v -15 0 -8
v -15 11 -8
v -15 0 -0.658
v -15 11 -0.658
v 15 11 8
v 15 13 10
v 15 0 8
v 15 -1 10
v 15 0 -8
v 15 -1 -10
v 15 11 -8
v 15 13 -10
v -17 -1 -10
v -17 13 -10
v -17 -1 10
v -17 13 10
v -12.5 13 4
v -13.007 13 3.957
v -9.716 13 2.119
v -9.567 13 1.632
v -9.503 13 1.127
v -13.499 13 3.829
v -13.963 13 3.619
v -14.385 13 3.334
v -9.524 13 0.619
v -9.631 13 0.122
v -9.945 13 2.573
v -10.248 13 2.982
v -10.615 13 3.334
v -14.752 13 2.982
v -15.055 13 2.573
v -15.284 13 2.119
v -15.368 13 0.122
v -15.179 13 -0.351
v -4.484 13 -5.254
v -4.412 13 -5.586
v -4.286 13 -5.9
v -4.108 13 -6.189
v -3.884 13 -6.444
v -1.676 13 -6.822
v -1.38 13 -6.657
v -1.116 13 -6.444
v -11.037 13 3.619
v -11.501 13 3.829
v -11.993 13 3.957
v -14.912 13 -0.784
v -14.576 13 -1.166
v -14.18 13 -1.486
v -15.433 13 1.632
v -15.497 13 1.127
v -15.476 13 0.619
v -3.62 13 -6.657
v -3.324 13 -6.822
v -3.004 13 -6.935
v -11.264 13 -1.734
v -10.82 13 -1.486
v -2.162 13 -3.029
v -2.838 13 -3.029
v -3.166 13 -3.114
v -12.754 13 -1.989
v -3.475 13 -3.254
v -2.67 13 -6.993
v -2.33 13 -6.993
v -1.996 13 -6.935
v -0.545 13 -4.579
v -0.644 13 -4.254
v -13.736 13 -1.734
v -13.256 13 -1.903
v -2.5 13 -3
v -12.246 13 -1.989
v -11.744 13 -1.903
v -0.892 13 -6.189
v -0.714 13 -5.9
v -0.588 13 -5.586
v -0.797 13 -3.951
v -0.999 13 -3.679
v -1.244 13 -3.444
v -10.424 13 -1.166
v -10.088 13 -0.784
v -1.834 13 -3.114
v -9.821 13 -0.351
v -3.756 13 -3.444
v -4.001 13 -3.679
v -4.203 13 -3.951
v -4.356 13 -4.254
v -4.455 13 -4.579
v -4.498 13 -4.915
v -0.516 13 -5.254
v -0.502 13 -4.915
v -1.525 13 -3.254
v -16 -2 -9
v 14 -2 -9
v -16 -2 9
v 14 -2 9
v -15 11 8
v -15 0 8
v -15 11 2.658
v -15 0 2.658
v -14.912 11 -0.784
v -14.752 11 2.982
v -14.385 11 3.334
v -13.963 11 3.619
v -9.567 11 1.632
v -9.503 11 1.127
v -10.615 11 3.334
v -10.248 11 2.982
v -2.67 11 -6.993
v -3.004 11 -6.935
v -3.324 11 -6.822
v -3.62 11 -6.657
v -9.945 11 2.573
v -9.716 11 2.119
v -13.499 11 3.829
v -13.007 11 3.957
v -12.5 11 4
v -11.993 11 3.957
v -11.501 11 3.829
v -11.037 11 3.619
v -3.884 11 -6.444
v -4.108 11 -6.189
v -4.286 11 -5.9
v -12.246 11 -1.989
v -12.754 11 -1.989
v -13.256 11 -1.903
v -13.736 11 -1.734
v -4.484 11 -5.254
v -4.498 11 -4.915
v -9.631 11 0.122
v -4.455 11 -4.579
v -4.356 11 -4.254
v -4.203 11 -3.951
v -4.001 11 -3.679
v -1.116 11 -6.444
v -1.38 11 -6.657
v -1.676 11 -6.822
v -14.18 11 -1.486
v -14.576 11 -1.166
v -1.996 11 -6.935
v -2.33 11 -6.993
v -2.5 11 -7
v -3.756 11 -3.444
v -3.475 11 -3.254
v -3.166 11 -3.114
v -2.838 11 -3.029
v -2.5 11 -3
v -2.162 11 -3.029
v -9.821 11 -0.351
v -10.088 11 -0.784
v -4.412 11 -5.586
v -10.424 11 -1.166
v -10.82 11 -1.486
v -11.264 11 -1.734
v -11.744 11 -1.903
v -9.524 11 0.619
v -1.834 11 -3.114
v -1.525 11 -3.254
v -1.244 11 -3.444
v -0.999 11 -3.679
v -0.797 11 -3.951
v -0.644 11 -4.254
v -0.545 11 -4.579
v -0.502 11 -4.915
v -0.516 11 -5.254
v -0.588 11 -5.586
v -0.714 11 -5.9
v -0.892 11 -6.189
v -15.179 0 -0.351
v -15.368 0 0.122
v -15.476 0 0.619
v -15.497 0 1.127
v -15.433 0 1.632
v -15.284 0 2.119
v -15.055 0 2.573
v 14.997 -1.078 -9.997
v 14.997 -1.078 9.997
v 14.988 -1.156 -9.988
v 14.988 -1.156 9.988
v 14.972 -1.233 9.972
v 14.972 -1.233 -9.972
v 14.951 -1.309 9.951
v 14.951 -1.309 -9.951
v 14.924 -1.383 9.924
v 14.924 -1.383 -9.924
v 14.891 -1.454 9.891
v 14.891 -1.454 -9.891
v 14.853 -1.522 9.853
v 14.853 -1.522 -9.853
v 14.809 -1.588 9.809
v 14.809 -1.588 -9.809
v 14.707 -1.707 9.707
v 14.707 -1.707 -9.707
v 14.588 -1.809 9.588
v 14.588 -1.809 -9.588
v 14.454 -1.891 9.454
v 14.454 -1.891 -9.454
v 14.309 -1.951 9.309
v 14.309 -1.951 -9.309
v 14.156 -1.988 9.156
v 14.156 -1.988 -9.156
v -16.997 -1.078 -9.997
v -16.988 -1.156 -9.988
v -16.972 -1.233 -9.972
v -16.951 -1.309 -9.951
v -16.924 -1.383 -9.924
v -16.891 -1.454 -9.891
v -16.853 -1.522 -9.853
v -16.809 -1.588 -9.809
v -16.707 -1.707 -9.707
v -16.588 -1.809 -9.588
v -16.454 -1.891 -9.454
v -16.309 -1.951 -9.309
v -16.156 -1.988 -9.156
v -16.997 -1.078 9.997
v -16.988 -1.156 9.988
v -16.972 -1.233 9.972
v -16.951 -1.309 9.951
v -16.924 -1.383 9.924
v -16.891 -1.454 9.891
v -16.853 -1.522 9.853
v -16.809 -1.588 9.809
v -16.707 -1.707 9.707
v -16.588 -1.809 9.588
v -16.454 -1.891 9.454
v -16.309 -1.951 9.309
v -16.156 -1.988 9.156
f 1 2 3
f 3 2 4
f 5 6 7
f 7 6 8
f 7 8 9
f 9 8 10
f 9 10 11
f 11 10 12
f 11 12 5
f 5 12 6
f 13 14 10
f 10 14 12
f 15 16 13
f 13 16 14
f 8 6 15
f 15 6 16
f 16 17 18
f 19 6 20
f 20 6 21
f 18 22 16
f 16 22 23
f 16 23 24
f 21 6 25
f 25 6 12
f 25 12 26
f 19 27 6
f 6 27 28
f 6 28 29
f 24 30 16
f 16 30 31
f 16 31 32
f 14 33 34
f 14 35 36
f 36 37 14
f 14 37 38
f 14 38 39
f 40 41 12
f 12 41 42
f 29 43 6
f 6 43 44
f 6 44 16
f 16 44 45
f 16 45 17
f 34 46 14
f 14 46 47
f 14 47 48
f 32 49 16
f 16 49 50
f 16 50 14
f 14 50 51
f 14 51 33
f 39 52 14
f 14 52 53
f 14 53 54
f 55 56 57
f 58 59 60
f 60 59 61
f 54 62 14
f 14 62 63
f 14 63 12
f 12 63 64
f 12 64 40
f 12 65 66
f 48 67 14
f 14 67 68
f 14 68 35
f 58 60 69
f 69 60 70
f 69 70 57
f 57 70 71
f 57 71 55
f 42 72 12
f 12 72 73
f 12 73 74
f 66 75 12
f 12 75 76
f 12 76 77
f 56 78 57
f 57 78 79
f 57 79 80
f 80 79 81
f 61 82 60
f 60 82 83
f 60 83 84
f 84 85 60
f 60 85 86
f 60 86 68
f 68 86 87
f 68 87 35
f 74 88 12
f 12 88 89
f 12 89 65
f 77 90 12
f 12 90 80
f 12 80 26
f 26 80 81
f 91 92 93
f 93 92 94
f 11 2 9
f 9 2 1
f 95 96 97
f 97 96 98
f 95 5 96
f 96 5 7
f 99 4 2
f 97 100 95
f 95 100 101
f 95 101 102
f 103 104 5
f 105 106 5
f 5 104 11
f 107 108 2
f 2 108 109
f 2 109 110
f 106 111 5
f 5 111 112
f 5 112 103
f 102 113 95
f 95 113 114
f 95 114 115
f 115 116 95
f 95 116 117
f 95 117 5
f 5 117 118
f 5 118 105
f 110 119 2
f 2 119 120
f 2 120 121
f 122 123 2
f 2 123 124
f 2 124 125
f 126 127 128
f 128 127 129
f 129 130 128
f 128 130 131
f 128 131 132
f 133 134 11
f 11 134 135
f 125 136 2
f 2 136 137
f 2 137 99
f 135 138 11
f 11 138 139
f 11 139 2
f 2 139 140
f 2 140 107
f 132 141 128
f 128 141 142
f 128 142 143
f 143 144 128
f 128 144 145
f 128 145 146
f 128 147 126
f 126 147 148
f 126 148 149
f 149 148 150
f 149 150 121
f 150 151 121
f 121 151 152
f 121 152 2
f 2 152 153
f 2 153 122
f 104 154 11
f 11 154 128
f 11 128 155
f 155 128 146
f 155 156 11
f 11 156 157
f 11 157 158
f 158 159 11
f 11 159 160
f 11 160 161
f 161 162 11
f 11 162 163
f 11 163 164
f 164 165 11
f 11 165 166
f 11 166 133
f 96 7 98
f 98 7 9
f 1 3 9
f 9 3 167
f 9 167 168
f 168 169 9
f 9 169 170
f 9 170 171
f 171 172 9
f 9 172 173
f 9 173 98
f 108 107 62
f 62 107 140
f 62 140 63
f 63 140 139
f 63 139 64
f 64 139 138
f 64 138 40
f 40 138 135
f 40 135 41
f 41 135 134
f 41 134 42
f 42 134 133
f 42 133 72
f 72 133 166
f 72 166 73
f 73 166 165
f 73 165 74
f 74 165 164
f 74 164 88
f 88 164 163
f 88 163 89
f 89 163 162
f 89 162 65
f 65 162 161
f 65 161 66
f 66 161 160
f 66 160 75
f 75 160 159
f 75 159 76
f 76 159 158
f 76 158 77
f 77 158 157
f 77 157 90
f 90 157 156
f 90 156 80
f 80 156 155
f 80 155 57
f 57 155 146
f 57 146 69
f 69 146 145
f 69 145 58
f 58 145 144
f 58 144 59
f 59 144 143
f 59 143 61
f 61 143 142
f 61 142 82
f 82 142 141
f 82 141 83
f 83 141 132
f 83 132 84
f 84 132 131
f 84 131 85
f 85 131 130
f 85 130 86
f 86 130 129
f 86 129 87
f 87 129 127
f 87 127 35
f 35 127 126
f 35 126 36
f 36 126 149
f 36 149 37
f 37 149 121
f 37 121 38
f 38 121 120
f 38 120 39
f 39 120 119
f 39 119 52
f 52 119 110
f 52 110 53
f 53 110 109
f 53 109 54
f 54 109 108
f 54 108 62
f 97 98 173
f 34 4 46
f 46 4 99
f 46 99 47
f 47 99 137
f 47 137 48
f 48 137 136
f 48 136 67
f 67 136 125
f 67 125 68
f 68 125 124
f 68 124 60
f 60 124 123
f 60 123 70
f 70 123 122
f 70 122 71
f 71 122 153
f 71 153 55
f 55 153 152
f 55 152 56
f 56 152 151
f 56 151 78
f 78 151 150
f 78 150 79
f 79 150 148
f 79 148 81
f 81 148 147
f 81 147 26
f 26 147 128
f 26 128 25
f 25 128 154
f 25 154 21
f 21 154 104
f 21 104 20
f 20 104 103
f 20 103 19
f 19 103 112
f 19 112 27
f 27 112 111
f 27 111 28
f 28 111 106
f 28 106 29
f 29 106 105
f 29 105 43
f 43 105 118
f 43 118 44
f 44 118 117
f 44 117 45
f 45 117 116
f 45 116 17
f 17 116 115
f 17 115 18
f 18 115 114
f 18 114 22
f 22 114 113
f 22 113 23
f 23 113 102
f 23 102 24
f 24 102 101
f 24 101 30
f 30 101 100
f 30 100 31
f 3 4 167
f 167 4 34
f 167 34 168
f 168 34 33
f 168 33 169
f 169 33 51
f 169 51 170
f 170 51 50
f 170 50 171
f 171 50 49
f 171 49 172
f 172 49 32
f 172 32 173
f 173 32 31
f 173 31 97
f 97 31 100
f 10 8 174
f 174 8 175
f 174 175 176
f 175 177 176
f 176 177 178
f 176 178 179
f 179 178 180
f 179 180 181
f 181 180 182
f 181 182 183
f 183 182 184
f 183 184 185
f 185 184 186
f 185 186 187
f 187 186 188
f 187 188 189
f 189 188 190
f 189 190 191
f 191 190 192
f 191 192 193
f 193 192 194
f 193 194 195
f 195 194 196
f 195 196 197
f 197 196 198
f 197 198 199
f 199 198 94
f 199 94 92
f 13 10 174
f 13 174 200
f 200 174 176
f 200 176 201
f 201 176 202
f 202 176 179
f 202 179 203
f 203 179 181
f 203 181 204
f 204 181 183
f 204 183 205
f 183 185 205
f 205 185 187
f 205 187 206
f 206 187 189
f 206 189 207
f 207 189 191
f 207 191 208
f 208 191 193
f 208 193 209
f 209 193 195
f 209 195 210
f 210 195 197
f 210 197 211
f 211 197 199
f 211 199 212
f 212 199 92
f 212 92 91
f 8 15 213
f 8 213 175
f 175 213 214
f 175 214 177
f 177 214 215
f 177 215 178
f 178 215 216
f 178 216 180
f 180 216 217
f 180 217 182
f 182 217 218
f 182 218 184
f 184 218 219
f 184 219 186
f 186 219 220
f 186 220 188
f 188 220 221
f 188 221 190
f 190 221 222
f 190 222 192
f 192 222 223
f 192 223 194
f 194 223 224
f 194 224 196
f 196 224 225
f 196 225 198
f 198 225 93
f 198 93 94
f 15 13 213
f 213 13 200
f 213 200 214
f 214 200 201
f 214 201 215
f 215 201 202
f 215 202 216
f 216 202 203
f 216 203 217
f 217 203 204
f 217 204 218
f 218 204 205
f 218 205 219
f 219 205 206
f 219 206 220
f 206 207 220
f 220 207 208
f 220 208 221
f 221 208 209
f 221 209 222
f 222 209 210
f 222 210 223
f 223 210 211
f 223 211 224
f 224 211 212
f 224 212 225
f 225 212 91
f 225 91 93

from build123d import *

# Parameters (mm, degrees)
SKETCH1_W           = 30
SKETCH1_H           = 16
BOSS_EXTRUDE1_DEPTH = 11
SHELL1_T            = 2
CUT_EXTRUDE3_REACH  = 26.779
SKETCH4_R           = 3
SKETCH4_R_2         = 2
FILLET1_R           = 1


with BuildPart() as part:
    # Sketch1 → Boss-Extrude1 (new body)
    with BuildSketch(Plane(origin=(0, 0, 0), x_dir=(1, 0, 0), z_dir=(0, 1, 0))):
        Rectangle(SKETCH1_W, SKETCH1_H)
    extrude(amount=BOSS_EXTRUDE1_DEPTH)

    # Shell1
    shell1_openings = [part.faces().sort_by_distance(p)[0] for p in [
        (15, 5.5, 0),
    ]]
    offset(amount=SHELL1_T, openings=shell1_openings, kind=Kind.INTERSECTION)

    # Cut-Extrude3: up to this face of the body (flat: up to its plane)
    cut_extrude3_end = Plane(part.part.faces().sort_by_distance((0, 0, 0))[0])
    # Sketch4 → Cut-Extrude3 (cut, up to the picked face)
    with BuildSketch(Plane(origin=(0, 13, 0), x_dir=(1, 0, 0), z_dir=(0, 1, 0)), mode=Mode.PRIVATE) as cut_extrude3_sk1:
        with Locations(Location((-12.5, -1, 0), (0, 0, 270))):
            Circle(SKETCH4_R)
    cut_extrude3_tool1 = split(extrude(cut_extrude3_sk1.sketch, amount=-CUT_EXTRUDE3_REACH, mode=Mode.PRIVATE), bisect_by=cut_extrude3_end, keep=Keep.BOTH, mode=Mode.PRIVATE)
    # Sketch4 → Cut-Extrude3 (cut, up to the picked face)
    with BuildSketch(Plane(origin=(0, 13, 0), x_dir=(1, 0, 0), z_dir=(0, 1, 0)), mode=Mode.PRIVATE) as cut_extrude3_sk2:
        with Locations(Location((-2.5, 5, 0), (0, 0, 270))):
            Circle(SKETCH4_R_2)
    cut_extrude3_tool2 = split(extrude(cut_extrude3_sk2.sketch, amount=-CUT_EXTRUDE3_REACH, mode=Mode.PRIVATE), bisect_by=cut_extrude3_end, keep=Keep.BOTH, mode=Mode.PRIVATE)
    add(cut_extrude3_tool1.solids().sort_by(Axis((-12.5, 13, 1), (0, -1, 0)))[0], mode=Mode.SUBTRACT)
    add(cut_extrude3_tool2.solids().sort_by(Axis((-2.5, 13, -5), (0, -1, 0)))[0], mode=Mode.SUBTRACT)

    # Fillet1
    fillet1_edges = [part.edges().sort_by_distance(p)[0] for p in [
        (-1, -2, 10),
        (-17, -2, 0),
        (-1, -2, -10),
        (15, -2, 0),
    ]]
    fillet(fillet1_edges, radius=FILLET1_R)


solid = part.part
